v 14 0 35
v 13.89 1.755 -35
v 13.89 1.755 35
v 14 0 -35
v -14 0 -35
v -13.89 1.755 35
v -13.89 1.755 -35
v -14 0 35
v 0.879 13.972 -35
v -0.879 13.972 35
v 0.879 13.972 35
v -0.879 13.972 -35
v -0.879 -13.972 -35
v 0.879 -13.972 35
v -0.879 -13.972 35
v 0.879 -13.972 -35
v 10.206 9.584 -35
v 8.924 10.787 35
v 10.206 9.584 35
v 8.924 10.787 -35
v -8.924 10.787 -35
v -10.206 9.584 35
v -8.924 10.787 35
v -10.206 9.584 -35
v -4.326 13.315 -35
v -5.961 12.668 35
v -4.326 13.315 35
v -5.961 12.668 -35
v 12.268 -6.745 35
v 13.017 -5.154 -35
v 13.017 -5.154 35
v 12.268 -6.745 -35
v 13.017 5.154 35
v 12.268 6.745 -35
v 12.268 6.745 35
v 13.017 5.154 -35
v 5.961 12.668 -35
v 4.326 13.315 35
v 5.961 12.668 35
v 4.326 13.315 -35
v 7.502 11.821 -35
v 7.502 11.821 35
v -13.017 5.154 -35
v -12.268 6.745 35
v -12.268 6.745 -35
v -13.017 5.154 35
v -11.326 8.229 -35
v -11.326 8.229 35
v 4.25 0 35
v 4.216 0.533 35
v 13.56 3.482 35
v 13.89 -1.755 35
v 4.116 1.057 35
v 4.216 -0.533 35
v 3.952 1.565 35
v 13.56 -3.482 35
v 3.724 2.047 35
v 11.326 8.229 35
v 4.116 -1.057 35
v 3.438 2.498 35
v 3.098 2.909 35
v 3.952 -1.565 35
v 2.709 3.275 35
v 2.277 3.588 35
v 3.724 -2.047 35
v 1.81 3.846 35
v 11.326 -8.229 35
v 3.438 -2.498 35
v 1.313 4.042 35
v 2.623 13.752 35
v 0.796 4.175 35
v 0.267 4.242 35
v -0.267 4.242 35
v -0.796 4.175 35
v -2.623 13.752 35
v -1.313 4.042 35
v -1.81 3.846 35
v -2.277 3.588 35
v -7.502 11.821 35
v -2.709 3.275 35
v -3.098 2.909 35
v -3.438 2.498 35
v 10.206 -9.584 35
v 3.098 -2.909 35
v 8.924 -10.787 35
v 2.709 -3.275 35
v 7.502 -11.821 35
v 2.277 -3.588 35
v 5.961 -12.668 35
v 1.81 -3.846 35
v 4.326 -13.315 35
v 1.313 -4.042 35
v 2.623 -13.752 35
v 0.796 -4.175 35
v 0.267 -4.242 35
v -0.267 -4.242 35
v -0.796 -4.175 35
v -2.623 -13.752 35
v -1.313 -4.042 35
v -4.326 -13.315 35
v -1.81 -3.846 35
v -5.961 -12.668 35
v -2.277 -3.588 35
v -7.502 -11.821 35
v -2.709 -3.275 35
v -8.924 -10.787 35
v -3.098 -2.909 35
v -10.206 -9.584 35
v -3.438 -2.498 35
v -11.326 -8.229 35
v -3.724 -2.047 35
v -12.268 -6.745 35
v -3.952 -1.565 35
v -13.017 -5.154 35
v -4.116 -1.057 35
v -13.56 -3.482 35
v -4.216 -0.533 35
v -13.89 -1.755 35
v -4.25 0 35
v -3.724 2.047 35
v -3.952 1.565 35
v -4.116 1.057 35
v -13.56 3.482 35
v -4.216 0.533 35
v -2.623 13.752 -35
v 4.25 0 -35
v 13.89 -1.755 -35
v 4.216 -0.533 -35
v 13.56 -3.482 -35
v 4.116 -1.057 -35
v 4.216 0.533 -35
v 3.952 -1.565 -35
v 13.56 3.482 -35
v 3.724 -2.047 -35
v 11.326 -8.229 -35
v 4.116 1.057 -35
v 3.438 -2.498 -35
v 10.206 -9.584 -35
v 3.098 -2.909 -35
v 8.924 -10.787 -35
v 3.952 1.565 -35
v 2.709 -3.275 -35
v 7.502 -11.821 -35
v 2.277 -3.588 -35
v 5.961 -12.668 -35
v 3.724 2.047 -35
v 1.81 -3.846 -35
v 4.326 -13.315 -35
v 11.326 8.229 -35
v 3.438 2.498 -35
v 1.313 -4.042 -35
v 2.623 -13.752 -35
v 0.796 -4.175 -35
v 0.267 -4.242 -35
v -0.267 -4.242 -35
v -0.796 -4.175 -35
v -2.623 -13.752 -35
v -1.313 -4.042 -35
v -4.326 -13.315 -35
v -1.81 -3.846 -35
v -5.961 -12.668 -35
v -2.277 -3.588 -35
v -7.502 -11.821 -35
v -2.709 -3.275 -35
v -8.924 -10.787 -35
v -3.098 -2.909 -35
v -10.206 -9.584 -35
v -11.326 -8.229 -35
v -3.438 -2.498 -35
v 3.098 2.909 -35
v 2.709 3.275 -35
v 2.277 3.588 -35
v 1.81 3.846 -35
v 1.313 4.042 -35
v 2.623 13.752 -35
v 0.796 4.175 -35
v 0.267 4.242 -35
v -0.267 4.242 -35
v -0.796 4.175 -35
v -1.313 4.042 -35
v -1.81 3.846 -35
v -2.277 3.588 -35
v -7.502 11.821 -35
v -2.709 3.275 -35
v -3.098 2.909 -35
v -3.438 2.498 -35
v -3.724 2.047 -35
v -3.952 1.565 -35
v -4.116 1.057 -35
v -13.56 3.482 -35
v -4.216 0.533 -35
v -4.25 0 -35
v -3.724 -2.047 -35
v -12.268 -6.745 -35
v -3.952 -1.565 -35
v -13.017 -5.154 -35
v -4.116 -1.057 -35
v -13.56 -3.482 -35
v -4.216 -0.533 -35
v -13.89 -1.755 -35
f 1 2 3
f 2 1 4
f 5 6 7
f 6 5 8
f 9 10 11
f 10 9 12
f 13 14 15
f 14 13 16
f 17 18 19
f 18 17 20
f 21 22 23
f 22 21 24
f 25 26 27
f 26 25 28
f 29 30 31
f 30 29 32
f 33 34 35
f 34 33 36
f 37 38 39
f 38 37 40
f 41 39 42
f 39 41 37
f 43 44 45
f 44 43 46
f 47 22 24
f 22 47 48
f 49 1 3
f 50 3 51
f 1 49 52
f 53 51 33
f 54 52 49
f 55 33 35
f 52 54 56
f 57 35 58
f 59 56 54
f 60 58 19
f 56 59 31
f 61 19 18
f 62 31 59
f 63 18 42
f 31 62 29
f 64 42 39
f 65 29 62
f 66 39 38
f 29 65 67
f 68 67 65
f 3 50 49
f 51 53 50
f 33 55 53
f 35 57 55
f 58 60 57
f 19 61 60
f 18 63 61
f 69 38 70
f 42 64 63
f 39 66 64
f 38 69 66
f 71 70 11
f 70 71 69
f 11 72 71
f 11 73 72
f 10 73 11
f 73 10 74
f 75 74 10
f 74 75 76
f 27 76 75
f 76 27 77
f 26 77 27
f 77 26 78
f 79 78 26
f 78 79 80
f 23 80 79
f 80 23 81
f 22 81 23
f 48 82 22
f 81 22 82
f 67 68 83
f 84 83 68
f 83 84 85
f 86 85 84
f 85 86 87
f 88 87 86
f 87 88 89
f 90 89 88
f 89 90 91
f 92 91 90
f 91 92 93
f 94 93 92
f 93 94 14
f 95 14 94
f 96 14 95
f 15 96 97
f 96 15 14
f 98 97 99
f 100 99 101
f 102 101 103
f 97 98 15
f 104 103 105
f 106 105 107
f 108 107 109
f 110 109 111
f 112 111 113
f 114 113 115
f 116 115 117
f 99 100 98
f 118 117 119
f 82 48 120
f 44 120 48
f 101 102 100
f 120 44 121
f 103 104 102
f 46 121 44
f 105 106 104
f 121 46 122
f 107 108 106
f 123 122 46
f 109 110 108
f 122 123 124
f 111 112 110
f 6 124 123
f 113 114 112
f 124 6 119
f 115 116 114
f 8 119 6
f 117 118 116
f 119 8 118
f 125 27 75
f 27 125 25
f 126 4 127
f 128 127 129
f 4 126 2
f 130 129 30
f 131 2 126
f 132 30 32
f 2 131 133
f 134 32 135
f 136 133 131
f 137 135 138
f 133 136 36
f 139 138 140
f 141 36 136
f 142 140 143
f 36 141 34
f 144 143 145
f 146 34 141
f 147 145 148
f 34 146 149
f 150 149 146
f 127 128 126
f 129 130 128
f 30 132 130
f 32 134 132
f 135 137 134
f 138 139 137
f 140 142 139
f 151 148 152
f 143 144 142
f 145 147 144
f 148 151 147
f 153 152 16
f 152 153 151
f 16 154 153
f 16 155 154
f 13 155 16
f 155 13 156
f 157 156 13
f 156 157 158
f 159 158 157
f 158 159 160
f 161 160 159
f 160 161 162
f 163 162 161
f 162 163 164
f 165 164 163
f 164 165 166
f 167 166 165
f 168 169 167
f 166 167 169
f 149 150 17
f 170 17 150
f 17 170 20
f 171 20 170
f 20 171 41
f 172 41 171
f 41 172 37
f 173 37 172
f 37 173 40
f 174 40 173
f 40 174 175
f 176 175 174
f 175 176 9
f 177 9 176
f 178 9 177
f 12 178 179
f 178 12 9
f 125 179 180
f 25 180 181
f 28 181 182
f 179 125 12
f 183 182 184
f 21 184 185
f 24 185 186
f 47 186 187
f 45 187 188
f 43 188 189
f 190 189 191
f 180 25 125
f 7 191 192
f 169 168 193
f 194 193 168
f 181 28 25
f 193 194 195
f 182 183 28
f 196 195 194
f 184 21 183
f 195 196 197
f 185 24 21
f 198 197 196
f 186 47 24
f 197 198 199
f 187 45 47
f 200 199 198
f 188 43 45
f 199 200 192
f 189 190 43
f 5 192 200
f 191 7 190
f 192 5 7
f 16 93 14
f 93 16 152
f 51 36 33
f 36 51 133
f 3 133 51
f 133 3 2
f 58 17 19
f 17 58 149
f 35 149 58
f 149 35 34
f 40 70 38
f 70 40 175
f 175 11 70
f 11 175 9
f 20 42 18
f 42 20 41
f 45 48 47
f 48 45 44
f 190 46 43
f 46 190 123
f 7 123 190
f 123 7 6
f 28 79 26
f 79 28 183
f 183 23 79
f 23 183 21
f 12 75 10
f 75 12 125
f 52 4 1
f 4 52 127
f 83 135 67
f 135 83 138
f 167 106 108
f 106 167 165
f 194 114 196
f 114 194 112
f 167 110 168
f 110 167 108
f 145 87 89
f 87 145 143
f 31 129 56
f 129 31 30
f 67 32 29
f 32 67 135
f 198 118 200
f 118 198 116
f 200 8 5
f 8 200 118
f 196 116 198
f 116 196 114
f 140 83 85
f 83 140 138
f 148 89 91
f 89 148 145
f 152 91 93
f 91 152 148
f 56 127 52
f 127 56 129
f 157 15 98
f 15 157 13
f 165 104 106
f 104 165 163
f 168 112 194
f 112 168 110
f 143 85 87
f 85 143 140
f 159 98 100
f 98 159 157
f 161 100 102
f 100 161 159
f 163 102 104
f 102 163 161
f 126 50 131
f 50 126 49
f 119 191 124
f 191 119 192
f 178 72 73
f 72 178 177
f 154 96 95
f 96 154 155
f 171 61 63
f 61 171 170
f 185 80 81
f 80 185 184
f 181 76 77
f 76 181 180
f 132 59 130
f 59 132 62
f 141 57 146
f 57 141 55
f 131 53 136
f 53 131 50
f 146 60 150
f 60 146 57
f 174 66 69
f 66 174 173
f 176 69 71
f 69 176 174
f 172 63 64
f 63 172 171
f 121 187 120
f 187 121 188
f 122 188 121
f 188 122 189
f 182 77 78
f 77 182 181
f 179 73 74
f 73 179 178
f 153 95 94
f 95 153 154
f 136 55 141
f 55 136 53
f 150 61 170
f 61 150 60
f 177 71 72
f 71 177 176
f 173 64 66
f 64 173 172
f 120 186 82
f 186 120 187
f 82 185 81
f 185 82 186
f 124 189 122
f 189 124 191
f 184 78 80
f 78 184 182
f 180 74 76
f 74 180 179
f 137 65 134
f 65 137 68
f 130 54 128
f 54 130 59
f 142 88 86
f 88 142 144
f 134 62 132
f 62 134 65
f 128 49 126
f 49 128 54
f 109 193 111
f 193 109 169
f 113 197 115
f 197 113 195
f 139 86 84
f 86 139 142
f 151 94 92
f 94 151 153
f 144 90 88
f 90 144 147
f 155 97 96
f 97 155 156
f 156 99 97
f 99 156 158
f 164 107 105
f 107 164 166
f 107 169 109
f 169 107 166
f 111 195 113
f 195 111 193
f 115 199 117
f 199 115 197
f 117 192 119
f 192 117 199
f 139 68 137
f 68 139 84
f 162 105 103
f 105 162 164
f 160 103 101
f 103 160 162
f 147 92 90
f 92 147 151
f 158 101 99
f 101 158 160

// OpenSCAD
$fn = 50;


difference() {
	union() {
		translate(v = [0, 0, -35.0000000000]) {
			cylinder(h = 70, r = 14.0000000000);
		}
	}
	union() {
		translate(v = [0, 0, -100.0000000000]) {
			cylinder(h = 200, r = 4.2500000000);
		}
	}
}
